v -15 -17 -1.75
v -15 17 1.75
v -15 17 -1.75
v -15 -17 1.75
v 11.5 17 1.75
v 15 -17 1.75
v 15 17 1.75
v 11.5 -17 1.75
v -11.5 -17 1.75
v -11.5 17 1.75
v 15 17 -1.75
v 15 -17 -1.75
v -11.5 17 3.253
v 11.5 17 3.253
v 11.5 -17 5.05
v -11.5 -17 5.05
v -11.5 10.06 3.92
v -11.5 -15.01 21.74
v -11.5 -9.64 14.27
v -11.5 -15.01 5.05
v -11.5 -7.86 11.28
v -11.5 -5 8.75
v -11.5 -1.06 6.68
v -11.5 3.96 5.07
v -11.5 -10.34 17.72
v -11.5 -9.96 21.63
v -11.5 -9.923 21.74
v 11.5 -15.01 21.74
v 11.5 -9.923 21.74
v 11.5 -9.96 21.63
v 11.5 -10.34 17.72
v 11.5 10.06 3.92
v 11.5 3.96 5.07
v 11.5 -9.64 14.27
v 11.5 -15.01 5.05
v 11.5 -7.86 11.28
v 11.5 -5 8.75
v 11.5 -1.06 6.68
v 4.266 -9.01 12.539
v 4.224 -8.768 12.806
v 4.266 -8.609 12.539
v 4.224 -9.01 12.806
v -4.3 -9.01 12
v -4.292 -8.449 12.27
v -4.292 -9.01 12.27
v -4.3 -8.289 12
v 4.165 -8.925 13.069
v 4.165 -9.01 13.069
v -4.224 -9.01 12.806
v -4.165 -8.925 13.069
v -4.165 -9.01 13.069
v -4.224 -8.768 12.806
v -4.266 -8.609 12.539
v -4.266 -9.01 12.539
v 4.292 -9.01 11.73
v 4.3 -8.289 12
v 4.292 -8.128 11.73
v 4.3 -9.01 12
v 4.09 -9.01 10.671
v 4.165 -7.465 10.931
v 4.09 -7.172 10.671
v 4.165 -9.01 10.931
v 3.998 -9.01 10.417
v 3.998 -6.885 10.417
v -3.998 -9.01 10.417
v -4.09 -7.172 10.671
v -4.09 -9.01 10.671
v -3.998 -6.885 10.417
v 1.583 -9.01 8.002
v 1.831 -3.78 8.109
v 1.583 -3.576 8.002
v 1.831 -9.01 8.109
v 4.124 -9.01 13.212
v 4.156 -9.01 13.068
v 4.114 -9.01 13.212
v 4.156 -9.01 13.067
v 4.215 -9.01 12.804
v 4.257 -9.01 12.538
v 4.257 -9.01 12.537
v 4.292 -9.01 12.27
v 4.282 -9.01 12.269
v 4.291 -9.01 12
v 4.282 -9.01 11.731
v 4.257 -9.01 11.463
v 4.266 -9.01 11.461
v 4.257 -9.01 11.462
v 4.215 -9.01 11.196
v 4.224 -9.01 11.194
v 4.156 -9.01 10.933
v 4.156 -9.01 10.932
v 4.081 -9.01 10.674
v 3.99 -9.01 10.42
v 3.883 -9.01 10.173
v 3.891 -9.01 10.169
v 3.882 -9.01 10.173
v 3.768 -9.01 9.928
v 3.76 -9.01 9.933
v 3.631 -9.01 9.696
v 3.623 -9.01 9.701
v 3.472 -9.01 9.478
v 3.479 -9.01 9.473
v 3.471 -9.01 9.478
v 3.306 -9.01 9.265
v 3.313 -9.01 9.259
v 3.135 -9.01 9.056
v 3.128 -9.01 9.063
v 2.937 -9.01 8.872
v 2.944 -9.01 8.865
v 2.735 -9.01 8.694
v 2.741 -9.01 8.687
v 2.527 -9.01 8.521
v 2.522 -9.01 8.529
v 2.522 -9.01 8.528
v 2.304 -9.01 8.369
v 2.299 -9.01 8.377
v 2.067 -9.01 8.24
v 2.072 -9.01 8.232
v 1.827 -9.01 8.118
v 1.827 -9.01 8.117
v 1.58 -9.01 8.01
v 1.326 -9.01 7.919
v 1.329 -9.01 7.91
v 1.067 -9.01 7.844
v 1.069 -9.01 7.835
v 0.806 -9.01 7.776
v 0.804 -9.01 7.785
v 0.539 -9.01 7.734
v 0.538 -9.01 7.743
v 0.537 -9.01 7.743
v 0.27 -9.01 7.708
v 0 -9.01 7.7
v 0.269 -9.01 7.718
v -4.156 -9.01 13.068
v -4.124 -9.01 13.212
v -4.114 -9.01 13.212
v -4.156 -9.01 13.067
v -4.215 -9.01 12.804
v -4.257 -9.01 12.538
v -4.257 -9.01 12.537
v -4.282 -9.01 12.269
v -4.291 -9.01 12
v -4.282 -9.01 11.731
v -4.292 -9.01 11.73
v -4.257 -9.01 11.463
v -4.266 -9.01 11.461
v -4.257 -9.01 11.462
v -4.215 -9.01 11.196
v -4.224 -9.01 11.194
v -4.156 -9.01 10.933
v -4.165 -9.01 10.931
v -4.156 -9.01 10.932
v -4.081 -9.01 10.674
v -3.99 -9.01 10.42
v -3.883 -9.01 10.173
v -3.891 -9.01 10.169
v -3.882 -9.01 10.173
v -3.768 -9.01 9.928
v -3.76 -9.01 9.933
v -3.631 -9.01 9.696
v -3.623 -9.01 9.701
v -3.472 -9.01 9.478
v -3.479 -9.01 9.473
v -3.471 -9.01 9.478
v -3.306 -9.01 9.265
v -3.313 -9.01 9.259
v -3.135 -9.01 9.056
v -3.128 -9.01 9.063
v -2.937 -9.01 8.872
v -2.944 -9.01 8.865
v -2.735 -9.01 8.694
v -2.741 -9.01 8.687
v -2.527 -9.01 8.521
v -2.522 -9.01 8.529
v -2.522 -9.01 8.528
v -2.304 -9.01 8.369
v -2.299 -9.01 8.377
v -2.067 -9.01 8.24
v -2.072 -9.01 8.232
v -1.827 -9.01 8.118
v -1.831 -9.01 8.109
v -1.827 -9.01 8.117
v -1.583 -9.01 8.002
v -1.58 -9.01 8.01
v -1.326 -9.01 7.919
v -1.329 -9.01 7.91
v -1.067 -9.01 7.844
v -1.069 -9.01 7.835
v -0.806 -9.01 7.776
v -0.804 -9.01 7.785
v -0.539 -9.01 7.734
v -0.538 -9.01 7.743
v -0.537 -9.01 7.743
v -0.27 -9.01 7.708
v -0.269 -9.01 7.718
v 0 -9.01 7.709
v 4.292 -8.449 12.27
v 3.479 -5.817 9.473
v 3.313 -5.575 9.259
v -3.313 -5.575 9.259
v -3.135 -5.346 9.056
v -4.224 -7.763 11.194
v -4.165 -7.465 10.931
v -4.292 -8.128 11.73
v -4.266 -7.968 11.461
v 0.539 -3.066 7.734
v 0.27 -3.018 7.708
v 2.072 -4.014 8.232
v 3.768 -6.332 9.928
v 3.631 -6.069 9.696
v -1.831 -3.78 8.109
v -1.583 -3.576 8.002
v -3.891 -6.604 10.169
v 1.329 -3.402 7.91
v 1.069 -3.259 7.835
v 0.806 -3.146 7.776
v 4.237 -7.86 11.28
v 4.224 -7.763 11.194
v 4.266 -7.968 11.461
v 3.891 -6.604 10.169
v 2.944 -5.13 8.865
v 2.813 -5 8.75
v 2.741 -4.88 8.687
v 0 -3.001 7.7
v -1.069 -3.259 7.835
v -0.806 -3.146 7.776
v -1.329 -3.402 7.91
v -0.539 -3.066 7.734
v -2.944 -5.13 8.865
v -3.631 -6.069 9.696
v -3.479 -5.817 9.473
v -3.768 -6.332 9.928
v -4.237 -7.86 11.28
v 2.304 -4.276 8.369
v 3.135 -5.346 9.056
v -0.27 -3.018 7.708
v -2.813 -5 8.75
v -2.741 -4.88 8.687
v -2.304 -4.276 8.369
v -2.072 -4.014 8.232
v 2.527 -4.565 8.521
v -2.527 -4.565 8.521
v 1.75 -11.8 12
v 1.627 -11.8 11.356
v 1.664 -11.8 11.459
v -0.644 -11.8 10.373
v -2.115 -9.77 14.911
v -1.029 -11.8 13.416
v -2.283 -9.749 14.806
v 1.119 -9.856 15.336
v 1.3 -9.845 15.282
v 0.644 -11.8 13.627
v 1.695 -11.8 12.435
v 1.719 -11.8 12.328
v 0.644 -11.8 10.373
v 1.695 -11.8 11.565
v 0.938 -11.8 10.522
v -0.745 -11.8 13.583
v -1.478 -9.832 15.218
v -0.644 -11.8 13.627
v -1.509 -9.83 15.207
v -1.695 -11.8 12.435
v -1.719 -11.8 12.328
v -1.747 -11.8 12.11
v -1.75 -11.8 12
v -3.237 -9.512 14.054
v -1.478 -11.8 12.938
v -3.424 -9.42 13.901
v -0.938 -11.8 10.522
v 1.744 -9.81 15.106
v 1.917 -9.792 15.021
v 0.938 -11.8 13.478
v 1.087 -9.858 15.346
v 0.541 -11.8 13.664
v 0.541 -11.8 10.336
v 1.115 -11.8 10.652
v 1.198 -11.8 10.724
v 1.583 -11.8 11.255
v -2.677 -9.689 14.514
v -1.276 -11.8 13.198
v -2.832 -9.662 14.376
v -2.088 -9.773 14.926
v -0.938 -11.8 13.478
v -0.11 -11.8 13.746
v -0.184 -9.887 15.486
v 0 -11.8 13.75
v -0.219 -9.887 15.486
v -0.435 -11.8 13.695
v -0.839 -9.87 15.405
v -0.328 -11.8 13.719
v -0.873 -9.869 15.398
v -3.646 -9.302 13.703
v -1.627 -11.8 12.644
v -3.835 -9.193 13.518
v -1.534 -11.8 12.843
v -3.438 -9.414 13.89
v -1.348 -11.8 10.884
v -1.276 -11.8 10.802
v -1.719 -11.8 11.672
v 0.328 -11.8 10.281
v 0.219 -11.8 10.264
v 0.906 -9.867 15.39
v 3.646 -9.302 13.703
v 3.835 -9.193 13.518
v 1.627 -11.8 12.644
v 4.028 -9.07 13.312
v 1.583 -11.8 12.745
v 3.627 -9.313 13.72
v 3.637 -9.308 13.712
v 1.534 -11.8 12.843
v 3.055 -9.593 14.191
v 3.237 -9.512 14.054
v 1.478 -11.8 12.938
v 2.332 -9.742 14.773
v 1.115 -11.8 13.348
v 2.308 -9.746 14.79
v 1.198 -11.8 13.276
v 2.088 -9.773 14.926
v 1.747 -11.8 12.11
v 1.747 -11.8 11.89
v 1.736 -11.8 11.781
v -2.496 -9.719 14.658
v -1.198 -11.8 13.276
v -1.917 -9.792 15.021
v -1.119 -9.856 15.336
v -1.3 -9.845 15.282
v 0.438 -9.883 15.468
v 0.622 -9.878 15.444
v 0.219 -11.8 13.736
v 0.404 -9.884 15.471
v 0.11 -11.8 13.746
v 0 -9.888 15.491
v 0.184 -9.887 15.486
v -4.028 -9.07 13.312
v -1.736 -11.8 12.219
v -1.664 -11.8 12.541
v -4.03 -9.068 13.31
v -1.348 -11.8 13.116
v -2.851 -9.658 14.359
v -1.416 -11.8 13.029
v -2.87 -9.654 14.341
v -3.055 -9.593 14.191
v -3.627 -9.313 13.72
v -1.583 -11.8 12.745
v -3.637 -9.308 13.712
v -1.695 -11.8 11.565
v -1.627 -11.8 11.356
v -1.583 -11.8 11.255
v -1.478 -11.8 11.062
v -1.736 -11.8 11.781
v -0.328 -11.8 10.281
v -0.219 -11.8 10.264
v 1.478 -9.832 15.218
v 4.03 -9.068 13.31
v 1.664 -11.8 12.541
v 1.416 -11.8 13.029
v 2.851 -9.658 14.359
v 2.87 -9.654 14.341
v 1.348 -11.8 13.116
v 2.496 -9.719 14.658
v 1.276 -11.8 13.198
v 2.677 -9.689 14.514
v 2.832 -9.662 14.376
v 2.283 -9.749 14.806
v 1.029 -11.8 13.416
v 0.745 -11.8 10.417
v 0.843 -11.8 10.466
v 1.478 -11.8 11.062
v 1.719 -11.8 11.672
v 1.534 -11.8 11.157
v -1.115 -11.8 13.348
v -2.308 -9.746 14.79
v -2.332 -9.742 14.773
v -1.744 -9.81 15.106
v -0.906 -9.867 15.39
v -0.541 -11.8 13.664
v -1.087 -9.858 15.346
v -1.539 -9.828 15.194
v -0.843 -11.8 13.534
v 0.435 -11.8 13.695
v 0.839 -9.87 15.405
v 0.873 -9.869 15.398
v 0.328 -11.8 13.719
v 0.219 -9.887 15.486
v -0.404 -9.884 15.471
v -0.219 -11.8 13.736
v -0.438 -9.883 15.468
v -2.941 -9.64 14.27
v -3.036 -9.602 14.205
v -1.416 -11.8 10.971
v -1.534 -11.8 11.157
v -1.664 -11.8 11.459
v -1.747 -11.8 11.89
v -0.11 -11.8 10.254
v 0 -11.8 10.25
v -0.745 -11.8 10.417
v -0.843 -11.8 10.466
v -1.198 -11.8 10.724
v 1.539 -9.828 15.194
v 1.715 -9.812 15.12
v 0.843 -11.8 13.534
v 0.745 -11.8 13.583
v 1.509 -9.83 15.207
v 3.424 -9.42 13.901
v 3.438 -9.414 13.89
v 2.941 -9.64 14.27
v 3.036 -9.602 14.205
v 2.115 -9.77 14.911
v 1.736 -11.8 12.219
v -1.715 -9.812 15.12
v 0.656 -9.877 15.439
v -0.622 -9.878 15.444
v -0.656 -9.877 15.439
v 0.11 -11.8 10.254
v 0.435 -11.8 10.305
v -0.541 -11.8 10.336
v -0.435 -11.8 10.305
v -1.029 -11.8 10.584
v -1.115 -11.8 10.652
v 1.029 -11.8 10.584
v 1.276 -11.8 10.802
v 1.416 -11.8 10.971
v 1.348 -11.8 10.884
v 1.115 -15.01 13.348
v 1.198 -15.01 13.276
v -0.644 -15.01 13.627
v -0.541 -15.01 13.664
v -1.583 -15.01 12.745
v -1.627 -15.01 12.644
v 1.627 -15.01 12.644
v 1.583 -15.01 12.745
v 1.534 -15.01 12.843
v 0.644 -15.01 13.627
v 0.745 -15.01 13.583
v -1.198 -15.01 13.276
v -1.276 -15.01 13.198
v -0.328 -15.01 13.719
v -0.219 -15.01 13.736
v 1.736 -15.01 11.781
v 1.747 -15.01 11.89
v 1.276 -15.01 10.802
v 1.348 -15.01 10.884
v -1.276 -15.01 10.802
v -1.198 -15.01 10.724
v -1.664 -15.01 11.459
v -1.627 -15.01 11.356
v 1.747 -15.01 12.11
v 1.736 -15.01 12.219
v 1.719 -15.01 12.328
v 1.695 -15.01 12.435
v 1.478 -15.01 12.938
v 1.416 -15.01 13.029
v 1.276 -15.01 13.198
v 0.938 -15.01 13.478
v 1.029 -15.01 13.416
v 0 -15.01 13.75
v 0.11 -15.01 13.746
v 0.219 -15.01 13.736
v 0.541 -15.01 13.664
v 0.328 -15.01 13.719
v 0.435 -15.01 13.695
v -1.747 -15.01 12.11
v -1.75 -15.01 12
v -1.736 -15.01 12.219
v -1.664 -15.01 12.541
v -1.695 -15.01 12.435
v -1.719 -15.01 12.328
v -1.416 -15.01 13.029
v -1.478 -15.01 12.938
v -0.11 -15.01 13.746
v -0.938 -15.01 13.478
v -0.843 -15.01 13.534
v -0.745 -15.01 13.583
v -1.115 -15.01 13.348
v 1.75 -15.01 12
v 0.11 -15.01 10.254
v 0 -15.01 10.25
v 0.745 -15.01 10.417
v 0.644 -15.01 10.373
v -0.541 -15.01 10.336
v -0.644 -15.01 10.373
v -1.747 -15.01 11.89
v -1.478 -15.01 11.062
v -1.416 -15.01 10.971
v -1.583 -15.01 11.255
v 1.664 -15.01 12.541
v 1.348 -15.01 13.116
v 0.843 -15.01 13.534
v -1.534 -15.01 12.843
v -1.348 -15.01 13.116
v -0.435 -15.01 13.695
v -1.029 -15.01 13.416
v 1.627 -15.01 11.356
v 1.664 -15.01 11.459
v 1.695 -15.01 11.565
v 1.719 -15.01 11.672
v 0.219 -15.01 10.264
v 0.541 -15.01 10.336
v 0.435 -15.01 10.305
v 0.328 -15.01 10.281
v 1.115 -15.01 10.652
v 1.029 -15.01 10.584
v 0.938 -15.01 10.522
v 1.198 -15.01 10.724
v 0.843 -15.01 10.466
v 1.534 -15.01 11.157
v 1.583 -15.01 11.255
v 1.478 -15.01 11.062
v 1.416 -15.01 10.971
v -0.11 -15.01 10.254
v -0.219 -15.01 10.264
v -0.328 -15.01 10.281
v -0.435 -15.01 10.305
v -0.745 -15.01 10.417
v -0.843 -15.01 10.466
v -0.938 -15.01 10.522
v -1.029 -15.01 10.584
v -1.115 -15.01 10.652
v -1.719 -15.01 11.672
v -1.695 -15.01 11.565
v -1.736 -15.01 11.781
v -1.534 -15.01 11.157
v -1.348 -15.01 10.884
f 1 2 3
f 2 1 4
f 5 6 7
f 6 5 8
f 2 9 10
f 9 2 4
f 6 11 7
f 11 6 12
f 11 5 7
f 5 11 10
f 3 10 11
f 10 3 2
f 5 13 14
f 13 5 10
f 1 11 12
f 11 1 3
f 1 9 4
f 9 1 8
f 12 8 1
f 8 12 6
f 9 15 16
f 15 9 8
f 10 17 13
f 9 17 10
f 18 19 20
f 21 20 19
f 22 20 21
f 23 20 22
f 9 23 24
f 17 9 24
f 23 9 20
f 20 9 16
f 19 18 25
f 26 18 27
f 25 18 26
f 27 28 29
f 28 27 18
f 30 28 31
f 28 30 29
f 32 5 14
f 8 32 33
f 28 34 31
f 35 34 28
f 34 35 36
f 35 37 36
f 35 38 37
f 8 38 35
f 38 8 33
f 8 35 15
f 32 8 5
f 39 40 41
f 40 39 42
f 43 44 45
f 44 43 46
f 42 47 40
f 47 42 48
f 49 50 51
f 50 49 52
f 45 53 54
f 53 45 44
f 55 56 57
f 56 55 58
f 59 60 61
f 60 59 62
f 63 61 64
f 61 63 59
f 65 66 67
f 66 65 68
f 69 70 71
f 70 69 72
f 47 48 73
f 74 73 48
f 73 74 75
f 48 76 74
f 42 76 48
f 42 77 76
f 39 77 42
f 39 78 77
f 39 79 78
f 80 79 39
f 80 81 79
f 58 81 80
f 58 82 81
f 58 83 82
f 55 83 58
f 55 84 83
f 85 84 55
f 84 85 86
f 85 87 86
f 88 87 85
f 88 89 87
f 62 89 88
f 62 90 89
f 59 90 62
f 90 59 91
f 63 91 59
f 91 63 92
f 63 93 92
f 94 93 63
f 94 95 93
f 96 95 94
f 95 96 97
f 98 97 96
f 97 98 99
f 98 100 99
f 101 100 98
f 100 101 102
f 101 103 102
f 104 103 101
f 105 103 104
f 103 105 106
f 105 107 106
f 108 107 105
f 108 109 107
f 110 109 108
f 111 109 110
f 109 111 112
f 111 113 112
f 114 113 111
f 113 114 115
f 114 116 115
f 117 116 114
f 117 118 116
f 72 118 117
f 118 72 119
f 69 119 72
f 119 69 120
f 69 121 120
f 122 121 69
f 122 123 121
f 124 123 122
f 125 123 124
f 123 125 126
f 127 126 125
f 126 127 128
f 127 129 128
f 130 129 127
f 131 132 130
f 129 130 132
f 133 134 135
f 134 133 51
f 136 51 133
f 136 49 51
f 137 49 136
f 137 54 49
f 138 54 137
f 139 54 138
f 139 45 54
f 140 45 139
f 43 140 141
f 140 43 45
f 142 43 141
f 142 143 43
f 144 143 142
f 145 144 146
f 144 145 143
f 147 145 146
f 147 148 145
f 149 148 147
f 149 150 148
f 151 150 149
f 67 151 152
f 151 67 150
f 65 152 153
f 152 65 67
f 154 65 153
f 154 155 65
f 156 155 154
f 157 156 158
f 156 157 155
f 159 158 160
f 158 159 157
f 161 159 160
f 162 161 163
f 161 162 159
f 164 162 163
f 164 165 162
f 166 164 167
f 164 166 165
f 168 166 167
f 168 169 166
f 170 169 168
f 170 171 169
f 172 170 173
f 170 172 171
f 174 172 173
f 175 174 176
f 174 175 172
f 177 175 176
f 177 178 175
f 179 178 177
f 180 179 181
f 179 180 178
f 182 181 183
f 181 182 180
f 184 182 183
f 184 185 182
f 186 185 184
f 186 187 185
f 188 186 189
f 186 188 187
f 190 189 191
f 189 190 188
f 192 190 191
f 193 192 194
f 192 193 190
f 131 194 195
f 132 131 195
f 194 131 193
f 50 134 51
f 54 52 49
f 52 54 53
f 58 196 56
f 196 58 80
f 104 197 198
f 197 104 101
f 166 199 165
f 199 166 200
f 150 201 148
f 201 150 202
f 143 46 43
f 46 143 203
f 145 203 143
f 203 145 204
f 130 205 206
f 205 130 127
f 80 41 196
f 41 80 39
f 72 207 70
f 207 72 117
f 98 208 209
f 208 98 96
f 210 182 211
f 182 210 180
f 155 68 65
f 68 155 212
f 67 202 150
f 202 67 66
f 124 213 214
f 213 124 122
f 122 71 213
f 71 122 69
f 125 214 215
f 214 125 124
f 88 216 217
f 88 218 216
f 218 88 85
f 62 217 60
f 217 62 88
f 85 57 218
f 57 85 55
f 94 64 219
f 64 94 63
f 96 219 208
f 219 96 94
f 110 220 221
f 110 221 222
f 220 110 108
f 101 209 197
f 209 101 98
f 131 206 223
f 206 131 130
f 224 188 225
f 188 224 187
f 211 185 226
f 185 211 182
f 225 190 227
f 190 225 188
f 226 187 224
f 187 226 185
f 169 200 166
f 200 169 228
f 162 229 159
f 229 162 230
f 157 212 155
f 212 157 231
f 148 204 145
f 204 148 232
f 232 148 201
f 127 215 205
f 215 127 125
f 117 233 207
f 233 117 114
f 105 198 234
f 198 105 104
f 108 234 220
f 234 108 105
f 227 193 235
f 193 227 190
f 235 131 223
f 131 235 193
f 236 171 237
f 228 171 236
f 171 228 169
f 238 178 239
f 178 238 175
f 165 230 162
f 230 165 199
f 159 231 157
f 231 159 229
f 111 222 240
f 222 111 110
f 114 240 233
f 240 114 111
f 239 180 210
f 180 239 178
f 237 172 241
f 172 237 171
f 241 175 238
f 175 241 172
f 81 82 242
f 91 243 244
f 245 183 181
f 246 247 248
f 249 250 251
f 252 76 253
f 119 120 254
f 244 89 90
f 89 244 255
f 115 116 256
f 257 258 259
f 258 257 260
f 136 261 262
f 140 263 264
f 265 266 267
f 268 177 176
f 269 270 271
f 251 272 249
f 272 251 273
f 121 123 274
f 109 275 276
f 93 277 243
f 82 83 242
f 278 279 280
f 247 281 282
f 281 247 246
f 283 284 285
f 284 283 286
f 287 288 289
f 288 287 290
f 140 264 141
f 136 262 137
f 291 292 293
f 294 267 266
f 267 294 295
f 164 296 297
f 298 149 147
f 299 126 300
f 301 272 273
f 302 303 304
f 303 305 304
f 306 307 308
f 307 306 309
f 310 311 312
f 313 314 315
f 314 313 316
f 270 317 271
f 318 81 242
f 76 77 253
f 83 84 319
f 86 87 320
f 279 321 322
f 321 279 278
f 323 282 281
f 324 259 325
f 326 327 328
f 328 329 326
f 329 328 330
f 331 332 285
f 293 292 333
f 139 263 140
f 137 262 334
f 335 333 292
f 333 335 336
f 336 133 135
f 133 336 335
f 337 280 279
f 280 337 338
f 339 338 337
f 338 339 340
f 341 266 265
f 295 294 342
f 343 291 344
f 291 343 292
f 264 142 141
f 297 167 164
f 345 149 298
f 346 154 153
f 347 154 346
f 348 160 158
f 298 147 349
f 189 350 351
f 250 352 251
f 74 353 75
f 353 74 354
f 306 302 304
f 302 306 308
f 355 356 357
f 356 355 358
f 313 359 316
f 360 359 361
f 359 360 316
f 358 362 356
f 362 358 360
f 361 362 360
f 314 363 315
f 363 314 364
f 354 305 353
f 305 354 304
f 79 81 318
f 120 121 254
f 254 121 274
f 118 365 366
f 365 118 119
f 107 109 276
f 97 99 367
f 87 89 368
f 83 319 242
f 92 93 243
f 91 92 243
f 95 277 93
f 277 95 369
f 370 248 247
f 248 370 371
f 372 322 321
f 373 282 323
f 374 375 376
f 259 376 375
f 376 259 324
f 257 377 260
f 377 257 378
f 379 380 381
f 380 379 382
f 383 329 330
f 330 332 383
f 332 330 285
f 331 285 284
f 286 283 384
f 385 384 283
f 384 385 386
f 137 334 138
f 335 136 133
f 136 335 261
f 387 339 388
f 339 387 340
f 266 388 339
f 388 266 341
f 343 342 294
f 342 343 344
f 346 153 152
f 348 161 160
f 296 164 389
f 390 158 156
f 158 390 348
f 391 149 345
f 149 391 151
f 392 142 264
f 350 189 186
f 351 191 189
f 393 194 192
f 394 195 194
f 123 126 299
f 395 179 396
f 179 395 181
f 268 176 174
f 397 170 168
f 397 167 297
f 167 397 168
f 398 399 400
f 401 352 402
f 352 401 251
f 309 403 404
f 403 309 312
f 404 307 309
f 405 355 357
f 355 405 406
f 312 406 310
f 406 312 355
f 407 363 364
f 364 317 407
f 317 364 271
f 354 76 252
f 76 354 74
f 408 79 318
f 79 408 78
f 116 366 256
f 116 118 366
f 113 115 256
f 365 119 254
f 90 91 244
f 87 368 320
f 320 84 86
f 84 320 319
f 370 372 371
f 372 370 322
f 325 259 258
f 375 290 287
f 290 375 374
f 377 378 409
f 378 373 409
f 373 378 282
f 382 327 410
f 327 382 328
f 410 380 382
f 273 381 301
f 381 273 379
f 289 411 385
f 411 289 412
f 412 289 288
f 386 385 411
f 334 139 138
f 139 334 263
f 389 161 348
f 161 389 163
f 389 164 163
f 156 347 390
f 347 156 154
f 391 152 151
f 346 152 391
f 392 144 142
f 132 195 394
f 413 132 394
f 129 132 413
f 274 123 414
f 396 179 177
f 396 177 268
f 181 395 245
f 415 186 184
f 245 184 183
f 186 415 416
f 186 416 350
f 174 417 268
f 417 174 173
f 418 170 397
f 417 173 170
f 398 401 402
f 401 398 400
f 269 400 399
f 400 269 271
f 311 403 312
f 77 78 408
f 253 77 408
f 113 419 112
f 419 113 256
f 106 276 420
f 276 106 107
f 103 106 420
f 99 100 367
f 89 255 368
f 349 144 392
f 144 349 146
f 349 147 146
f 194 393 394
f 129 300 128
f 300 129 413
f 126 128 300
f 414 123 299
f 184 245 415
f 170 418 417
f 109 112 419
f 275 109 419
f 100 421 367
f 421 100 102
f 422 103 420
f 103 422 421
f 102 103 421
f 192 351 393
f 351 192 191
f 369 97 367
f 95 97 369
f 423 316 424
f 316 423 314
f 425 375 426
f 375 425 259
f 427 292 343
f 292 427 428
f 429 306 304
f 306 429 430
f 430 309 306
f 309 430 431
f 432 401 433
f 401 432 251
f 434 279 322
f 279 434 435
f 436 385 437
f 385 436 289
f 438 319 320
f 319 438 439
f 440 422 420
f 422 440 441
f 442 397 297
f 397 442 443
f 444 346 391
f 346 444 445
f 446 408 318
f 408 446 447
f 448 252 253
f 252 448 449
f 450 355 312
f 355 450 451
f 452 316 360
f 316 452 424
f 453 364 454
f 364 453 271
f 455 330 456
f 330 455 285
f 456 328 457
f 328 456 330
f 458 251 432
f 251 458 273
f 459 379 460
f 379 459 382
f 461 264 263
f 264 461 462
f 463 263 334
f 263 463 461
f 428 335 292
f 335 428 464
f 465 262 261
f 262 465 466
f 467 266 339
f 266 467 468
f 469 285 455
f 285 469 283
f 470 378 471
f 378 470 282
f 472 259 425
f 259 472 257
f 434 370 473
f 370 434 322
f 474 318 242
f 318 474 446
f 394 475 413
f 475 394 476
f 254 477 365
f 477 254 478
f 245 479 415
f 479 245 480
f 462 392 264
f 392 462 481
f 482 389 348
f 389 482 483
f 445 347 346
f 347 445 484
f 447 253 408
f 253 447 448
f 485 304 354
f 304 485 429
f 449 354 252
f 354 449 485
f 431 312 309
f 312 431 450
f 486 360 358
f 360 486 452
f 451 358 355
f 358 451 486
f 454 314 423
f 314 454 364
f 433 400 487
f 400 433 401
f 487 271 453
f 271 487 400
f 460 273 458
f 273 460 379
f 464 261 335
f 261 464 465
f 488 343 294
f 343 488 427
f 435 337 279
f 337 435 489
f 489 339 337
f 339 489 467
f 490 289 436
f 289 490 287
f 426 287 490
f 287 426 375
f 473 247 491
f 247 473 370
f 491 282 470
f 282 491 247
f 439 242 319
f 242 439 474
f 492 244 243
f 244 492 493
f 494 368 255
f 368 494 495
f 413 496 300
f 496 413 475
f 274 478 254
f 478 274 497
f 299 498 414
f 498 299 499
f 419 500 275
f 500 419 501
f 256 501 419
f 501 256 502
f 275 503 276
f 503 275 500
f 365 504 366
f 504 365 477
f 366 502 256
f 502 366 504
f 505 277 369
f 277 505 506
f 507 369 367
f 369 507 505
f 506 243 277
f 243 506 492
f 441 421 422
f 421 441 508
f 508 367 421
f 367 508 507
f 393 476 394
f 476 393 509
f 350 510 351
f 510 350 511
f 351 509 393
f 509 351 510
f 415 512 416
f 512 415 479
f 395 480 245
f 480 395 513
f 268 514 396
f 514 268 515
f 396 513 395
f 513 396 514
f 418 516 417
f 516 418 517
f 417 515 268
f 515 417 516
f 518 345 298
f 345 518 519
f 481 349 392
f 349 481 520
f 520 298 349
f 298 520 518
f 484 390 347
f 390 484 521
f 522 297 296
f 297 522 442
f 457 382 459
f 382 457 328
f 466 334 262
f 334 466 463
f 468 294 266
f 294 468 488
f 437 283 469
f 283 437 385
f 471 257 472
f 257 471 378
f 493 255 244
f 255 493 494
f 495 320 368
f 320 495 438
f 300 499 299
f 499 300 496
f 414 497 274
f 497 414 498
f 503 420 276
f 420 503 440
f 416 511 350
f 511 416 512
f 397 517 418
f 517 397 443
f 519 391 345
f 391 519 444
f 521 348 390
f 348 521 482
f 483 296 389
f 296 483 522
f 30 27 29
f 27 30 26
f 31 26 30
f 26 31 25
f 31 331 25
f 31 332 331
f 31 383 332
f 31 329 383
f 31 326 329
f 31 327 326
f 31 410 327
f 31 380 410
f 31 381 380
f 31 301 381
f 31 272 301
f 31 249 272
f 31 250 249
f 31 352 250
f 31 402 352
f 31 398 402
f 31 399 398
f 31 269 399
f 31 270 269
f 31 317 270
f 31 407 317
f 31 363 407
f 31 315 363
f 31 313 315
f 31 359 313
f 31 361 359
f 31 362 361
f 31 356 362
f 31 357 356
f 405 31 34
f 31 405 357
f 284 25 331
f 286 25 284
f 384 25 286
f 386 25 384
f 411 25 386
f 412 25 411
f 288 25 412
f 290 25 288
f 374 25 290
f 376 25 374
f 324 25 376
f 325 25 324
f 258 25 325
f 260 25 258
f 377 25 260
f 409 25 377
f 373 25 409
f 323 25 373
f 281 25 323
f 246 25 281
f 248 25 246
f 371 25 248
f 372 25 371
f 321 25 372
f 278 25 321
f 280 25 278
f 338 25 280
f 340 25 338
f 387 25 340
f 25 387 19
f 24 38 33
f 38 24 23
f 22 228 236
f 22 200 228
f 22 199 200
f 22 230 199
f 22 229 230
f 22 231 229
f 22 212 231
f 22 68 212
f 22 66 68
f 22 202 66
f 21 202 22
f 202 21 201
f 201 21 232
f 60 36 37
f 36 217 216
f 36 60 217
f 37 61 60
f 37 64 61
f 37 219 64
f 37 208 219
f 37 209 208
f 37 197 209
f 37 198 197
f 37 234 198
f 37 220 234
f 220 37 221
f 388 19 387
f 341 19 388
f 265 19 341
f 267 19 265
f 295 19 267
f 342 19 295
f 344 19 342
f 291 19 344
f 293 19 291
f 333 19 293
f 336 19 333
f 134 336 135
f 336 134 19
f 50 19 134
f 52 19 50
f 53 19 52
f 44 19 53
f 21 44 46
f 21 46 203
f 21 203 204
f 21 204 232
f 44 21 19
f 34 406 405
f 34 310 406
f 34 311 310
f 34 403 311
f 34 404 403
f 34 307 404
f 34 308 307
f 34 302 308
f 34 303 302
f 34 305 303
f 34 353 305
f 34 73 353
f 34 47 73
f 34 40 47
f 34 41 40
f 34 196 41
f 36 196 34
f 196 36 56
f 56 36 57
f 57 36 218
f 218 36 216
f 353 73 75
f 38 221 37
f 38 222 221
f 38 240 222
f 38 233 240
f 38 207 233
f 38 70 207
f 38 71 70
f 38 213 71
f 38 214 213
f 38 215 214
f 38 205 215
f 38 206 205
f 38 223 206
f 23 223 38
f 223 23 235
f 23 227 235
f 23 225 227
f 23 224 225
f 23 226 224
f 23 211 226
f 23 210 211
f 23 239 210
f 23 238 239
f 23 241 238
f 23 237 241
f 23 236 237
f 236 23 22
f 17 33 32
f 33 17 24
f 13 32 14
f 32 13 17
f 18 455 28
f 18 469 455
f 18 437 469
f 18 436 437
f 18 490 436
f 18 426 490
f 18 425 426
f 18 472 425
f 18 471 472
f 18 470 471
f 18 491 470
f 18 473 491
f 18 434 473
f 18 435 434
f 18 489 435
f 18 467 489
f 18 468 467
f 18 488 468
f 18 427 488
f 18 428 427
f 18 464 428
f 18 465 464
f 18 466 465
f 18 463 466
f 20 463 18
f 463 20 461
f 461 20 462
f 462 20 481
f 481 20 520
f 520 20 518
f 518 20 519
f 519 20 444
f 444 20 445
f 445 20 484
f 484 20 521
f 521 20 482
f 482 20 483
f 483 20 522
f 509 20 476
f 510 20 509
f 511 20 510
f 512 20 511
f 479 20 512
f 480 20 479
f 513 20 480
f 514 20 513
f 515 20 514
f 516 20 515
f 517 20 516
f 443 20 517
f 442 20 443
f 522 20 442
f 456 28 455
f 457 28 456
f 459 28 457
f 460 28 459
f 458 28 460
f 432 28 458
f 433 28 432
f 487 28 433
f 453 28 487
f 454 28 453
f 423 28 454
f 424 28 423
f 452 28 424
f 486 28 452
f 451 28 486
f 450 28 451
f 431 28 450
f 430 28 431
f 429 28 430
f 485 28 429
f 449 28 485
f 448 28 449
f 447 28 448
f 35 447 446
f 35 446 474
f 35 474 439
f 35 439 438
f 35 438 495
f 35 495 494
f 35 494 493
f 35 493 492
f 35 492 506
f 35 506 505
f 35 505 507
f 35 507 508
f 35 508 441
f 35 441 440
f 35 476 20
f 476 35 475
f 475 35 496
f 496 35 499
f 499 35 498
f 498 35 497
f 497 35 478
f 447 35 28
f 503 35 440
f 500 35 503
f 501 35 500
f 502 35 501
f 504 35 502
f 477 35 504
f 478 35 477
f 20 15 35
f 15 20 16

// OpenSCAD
// file: vector.scad
function is_nan(x) = x != x ;

// reverse vector
function reverse(v) = [for (i =[len(v)-1:-1:0]) v[i]];
// repeat vector n-times
function repeat(v, n) = [for (i=[0:n*len(v)-1])  v[ i%len(v) ] ];
// allow negative indexes for vector (counting from the back). -1 is last element in array
function v_index(v, n) = is_undef(n) ? len(v) : n < 0 ? len(v)+n : n ;
// cut slice of vertor. `start` included , `end` excluded.
function slice(v, start, end=undef) = [for (i=[start:v_index(v,end)-1]) v[i] ];

function v_add(v, n) = [for (i=[0:len(v)-1]) v[i]+n ];

assert(reverse([1,2,3]) == [3,2,1]);
assert(repeat([1,2],3) ==  [1, 2, 1, 2, 1, 2]);
assert(v_index([1,2,3],-1)==2);
assert(v_index([1,2,3],0) == 0);
assert(v_index([1,2,3],undef)==3);
assert(slice([1,2,3],1,-1)==[2]);
assert(slice([1,2,3],1)==[2,3]);
assert(v_add([1,2,3],1)==[2,3,4]);
// file: 2d.scad
use <vector.scad>

function max_x(a, i = 0) = (len(a) == 0) ? 0 : (i < len(a) - 1) ? max(a[i][0], max_x(a, i+1)) : a[i][0];
function shift_x(a, dx, scaler=1) = [for ( p=a) [scaler*p[0]+dx,p[1]] ];

function scale_poly(a, s=[1,1]) = [for (p=a) [ s[0]*p[0], s[1]*p[1] ]];
function shift_poly(a, d=[0,0]) = [for (p=a) [ d + p ]];

function inverse_x(a) = shift_x(reverse(a),max_x(a),-1);
function mirror_x(a) = shift_x(reverse(a),0,-1);

function symmetry_x(a) = scale_poly(reverse(a),s=[-1,1]);
function symmetry_y(a) = scale_poly(reverse(a),s=[1,-1]);

function concat_with_undefs(prev,next) = 
    len(prev) == 0 ? next : 
        let (prev_last_p = prev[v_index(prev,-1)]) 
        is_undef(prev_last_p[1])  
            ? concat(slice(prev,0,-1),[[prev_last_p[0],next[0][1]]],next) 
            : is_undef(next[0][1]) 
                ? concat(prev, [[next[0][0],prev_last_p[1]]], slice(next,1)) 
                : concat(prev, next) ;

function join_poly(polys, r = [], i=0) = (i < len(polys)) ? 
    join_poly( polys, concat_with_undefs(r,shift_x(polys[i],max_x(r))) ,i+1) : r;

function line_segment(p1,p2) = [p1,[p2[0]-p1[0], p2[1] - p1[1]]];

function ls_slope(ls) = ls[1][1]/ls[1][0] ;

function ls_distance(ls) = sqrt(pow(ls[1][1],2)+pow(ls[1][0],2));

function ls_angle(ls) = 
    let (ss = sign(ls[1][1]) == -1 ? -1 : 1)
    let (sc = sign(ls[1][0]) == -1 ? -1 : 1)
    let (ts = asin(ls[1][1]/ls_distance(ls))) 
    ts != 0 ? ( sc == -1 ? ss * 180 - ts : ts ) : ss*acos(ls[1][0]/ls_distance(ls))  ;
    
assert(ls_angle([[0, 0], [1, 0]])==0);
assert(ls_angle([[0, 0], [-1, 0]])==180);


function angle_diff_cw(a1, a2) = a1 < a2 ? angle_diff_cw(a1+360, a2) : a1 - a2 ;

function angle_diff_ccw(a1, a2) = angle_diff_cw(a2, a1);

function ls_midpoint(ls) = ls[0]+ls[1]/2;

function ls_endpoint(ls) = ls[0]+ls[1];

function line(slope,pt) = [slope, pt[1]-slope*pt[0]];

function l_y(l,x) = l[0]*x + l[1];

function l_segment(l,x1,x2) = line_segment([x1, l_y(l,x1)], [x2, l_y(l,x2)]);

function ls_line(ls) = let(slope=ls_slope(ls)) line(slope,ls[0]);

function ls_perpendicular(ls) = 
    let (l = ls_line(ls)) 
    let (mp = ls_midpoint(ls))
    line(-1/l[0], mp);

function intersect_lines(l1, l2) = 
    let (x = (l2[1]-l1[1])/(l1[0]-l2[0]))
    [x,l_y(l1,x)];

function interpolate_point(ls,fraction) =  [
    ls[0][0] + fraction*ls[1][0],
    ls[0][1] + fraction*ls[1][1]
];


function bezier_curve( a, b, c ) =
    len(a)==3 ? _bezier_curve(a[0],a[1],a[2]) : _bezier_curve(a,b,c);

function _bezier_curve( p1, p2, p3 ) =
    [line_segment(p1,p2), line_segment(p2, p3)];

function curve_point(bc, fraction) =
    interpolate_point(
        line_segment(
            interpolate_point(bc[0],fraction), 
            interpolate_point(bc[1], fraction)), 
        fraction);

function bc_poly(bc, n_points=10) = [for ( f = [0:1/n_points:1]) curve_point(bc, f)] ;

function rake_poly(up_ramp, down_to_valley, n_of_valleys) = // repeat poligons 
    join_poly(concat(
        [up_ramp],
        repeat(
            [
                down_to_valley, 
                inverse_x(down_to_valley) // up on other side of the valley
            ], 
            n_of_valleys),
        [inverse_x(up_ramp)] // down ramp
    ));

function arc_point(a,f) = 
    let(c = a[0])
    let(r = a[1])
    let(initial_angle = a[2])
    let(cw = a[3])
    let(range = a[4])
    let(angle = cw ? initial_angle - f * range : initial_angle + f * range)
    c+[r*cos(angle),r*sin(angle)];

function arc_poly(a, n_points=10) = [for ( f = [0:1/n_points:1]) arc_point(a, f)] ;

function arc( a, b, c ) =
    len(a)==3 ? _arc(a[0],a[1],a[2]) : _arc(a,b,c);

function _arc( p1, p2, p3 ) =
    let(ls1 = line_segment(p1,p2))
    let(ls2 = line_segment(p2,p3))
    let(ls3 = line_segment(p1,p3))    
    let(lp1 = ls_perpendicular(ls1))
    let(lp2 = ls_perpendicular(ls2))
    let(lp3 = ls_perpendicular(ls3))
    let(c12 = intersect_lines(lp1,lp2))
    let(c23 = intersect_lines(lp2,lp3))
    let(c13 = intersect_lines(lp1,lp3))
    let(c = !is_nan(c23[0]) ? c23 : !is_nan(c13[0])? c13 : c12 )
    let(r1 = line_segment(c,p1))
    let(r2 = line_segment(c,p2))
    let(r3 = line_segment(c,p3))
    let(r = ls_distance(r1))
    let(a1 = ls_angle(r1))
    let(a2 = ls_angle(r2))
    let(a3 = ls_angle(r3))
    let(cw = angle_diff_cw(a1,a2) < angle_diff_cw(a1,a3))
    let(a_diff = cw ? angle_diff_cw(a1,a3) : angle_diff_ccw(a1,a3))
    [c,r,a1,cw,a_diff];


// linear interpolation or extrapolation (middle by default or any ratio) 
// using 2 points `a` and `b`
function mid(a,b,ratio=.5) = b + (a-b)*ratio ; 

function triangle(a,b,split=.5,height=.5) =
    let (delta = (mid(a,b,height)-b) * [[0,1],[-1,0]])
    let (z = mid(a,b,split) + delta)
    [a,z,b];

assert(arc([0,0],[0,1],[1,1])==arc([[0,0],[0,1],[1,1]]));
assert(bezier_curve([0,0],[0,1],[1,1])==bezier_curve([[0,0],[0,1],[1,1]]));

// echo(arc([0,0],[0,1],[1,1]));
// echo(arc(triangle([0,0],[1,1],.5,-.5)));

assert(arc([0,0],[0,1],[1,1])==arc(triangle([0,0],[1,1],.5,-.5)));
assert(arc([1,1],[1,2],[2,2])==arc(triangle([1,1],[2,2],.5,-.5)));

// echo(arc([0,0],[1,0],[1,1]));
// echo(arc(triangle([0,0],[1,1],.5,.5)));

assert(arc([0,0],[1,0],[1,1])==arc(triangle([0,0],[1,1],.5,.5)));
assert(arc([1,1],[2,1],[2,2])==arc(triangle([1,1],[2,2],.5,.5)));

// echo(arc(triangle([1,0], [-1,0])));
assert(arc(triangle([1,0], [-1,0])) ==  [[0, 0], 1, 0, false, 180]);

// echo(arc(triangle([0,-1], [0,1])));
assert(arc(triangle([0,-1], [0,1])) ==  [[0, 0], 1, -90, false, 180]);

// echo(arc(triangle([0,-1], [0,1],height=-.5)));
assert(arc(triangle([0,-1], [0,1], height=-.5)) ==  [[0, 0], 1, -90, true, 180]);
// file: Screws.scad
e=.01;
$fn=100;

function s1_25() = // Drywall 1 1/4" screw
    let(total_len = 32.3)
    let(thread = 21.5)
    let(shank = 8)
    let(d_shank = 3.5)
    let(d_hat = 8.6)
    [total_len, thread, shank, total_len-thread-shank, d_shank-.5, d_shank, d_hat];

function s2() = // Drywall 2" screw
    let(total_len = 51.4)
    let(thread = 33.5)
    let(shank = 13.3)
    let(d_shank = 3.5)
    let(d_hat = 8.6)
    [total_len, thread, shank, total_len-thread-shank, d_shank-.5, d_shank, d_hat];  

function a10x0x2x2x6mm() = // artika lamp 10mm screw
    let(total_len = 10)
    let(shank = 0)
    let(thread = total_len - shank - 2)
    let(d_shank = 3)
    let(d_hat = 6)
    [total_len, thread, shank, total_len-thread-shank, d_shank-.5, d_shank, d_hat];  

module screw(a, p=0.){
    total_len=a[0]; thread=a[1]; shank=a[2]; hat=a[3]; d_thread=a[4]; d_shank=a[5]; d_hat=a[6];
    union(){
        if( p > 0.) {
            translate([0,0,-p+e])
            cylinder(p,d1=d_hat,d2=d_hat);
        }
        cylinder(hat,d1=d_hat,d2=d_shank);
        translate([0,0,hat-e])
        if( p > 0.) {
            cylinder(shank+thread+p, d1=d_shank, d2=d_shank);
        }else{
            union(){
                cylinder(shank, d1=d_shank, d2=d_shank);
                translate([0,0,shank-e])
                cylinder(thread, d1=d_thread, d2=d_thread);
            }
        }
    }
}

//screw(s1_25());
//translate([10,0,0]) screw(s1_25(),5);
//translate([20,0,0]) screw(s2());
//translate([30,0,0]) screw(s2(),5);
// main file
cleat = 3.5;
base = 20;
e=.01;
y_cut=2;
x_cut=6.8;
y=32+y_cut;
x=23;
cut=y_cut;
w=30;

use <Screws.scad>
use <2d.scad>

difference(){
    union(){
        cube([w,y,cleat],center=true);
        translate([0,0,cleat/2+base/2-e]) 
        cube([x,y,base],center=true);
    }
    translate([0,3-x/2,3])
        rotate([0,-90,0]) 
        linear_extrude(height=x+e, center=true)
            polygon(points=concat(
            bc_poly(bezier_curve([0,y],[0,-10],[x,0])),
            [[x,y]])
            );

    #translate([0,-9,12]) rotate([90,0,0]) screw(s1_25(),8);

    translate([0,y_cut/2-y/2-e,x/2-cleat/2+x_cut]) 
      cube([w+e,y_cut,x],center=true);
}
